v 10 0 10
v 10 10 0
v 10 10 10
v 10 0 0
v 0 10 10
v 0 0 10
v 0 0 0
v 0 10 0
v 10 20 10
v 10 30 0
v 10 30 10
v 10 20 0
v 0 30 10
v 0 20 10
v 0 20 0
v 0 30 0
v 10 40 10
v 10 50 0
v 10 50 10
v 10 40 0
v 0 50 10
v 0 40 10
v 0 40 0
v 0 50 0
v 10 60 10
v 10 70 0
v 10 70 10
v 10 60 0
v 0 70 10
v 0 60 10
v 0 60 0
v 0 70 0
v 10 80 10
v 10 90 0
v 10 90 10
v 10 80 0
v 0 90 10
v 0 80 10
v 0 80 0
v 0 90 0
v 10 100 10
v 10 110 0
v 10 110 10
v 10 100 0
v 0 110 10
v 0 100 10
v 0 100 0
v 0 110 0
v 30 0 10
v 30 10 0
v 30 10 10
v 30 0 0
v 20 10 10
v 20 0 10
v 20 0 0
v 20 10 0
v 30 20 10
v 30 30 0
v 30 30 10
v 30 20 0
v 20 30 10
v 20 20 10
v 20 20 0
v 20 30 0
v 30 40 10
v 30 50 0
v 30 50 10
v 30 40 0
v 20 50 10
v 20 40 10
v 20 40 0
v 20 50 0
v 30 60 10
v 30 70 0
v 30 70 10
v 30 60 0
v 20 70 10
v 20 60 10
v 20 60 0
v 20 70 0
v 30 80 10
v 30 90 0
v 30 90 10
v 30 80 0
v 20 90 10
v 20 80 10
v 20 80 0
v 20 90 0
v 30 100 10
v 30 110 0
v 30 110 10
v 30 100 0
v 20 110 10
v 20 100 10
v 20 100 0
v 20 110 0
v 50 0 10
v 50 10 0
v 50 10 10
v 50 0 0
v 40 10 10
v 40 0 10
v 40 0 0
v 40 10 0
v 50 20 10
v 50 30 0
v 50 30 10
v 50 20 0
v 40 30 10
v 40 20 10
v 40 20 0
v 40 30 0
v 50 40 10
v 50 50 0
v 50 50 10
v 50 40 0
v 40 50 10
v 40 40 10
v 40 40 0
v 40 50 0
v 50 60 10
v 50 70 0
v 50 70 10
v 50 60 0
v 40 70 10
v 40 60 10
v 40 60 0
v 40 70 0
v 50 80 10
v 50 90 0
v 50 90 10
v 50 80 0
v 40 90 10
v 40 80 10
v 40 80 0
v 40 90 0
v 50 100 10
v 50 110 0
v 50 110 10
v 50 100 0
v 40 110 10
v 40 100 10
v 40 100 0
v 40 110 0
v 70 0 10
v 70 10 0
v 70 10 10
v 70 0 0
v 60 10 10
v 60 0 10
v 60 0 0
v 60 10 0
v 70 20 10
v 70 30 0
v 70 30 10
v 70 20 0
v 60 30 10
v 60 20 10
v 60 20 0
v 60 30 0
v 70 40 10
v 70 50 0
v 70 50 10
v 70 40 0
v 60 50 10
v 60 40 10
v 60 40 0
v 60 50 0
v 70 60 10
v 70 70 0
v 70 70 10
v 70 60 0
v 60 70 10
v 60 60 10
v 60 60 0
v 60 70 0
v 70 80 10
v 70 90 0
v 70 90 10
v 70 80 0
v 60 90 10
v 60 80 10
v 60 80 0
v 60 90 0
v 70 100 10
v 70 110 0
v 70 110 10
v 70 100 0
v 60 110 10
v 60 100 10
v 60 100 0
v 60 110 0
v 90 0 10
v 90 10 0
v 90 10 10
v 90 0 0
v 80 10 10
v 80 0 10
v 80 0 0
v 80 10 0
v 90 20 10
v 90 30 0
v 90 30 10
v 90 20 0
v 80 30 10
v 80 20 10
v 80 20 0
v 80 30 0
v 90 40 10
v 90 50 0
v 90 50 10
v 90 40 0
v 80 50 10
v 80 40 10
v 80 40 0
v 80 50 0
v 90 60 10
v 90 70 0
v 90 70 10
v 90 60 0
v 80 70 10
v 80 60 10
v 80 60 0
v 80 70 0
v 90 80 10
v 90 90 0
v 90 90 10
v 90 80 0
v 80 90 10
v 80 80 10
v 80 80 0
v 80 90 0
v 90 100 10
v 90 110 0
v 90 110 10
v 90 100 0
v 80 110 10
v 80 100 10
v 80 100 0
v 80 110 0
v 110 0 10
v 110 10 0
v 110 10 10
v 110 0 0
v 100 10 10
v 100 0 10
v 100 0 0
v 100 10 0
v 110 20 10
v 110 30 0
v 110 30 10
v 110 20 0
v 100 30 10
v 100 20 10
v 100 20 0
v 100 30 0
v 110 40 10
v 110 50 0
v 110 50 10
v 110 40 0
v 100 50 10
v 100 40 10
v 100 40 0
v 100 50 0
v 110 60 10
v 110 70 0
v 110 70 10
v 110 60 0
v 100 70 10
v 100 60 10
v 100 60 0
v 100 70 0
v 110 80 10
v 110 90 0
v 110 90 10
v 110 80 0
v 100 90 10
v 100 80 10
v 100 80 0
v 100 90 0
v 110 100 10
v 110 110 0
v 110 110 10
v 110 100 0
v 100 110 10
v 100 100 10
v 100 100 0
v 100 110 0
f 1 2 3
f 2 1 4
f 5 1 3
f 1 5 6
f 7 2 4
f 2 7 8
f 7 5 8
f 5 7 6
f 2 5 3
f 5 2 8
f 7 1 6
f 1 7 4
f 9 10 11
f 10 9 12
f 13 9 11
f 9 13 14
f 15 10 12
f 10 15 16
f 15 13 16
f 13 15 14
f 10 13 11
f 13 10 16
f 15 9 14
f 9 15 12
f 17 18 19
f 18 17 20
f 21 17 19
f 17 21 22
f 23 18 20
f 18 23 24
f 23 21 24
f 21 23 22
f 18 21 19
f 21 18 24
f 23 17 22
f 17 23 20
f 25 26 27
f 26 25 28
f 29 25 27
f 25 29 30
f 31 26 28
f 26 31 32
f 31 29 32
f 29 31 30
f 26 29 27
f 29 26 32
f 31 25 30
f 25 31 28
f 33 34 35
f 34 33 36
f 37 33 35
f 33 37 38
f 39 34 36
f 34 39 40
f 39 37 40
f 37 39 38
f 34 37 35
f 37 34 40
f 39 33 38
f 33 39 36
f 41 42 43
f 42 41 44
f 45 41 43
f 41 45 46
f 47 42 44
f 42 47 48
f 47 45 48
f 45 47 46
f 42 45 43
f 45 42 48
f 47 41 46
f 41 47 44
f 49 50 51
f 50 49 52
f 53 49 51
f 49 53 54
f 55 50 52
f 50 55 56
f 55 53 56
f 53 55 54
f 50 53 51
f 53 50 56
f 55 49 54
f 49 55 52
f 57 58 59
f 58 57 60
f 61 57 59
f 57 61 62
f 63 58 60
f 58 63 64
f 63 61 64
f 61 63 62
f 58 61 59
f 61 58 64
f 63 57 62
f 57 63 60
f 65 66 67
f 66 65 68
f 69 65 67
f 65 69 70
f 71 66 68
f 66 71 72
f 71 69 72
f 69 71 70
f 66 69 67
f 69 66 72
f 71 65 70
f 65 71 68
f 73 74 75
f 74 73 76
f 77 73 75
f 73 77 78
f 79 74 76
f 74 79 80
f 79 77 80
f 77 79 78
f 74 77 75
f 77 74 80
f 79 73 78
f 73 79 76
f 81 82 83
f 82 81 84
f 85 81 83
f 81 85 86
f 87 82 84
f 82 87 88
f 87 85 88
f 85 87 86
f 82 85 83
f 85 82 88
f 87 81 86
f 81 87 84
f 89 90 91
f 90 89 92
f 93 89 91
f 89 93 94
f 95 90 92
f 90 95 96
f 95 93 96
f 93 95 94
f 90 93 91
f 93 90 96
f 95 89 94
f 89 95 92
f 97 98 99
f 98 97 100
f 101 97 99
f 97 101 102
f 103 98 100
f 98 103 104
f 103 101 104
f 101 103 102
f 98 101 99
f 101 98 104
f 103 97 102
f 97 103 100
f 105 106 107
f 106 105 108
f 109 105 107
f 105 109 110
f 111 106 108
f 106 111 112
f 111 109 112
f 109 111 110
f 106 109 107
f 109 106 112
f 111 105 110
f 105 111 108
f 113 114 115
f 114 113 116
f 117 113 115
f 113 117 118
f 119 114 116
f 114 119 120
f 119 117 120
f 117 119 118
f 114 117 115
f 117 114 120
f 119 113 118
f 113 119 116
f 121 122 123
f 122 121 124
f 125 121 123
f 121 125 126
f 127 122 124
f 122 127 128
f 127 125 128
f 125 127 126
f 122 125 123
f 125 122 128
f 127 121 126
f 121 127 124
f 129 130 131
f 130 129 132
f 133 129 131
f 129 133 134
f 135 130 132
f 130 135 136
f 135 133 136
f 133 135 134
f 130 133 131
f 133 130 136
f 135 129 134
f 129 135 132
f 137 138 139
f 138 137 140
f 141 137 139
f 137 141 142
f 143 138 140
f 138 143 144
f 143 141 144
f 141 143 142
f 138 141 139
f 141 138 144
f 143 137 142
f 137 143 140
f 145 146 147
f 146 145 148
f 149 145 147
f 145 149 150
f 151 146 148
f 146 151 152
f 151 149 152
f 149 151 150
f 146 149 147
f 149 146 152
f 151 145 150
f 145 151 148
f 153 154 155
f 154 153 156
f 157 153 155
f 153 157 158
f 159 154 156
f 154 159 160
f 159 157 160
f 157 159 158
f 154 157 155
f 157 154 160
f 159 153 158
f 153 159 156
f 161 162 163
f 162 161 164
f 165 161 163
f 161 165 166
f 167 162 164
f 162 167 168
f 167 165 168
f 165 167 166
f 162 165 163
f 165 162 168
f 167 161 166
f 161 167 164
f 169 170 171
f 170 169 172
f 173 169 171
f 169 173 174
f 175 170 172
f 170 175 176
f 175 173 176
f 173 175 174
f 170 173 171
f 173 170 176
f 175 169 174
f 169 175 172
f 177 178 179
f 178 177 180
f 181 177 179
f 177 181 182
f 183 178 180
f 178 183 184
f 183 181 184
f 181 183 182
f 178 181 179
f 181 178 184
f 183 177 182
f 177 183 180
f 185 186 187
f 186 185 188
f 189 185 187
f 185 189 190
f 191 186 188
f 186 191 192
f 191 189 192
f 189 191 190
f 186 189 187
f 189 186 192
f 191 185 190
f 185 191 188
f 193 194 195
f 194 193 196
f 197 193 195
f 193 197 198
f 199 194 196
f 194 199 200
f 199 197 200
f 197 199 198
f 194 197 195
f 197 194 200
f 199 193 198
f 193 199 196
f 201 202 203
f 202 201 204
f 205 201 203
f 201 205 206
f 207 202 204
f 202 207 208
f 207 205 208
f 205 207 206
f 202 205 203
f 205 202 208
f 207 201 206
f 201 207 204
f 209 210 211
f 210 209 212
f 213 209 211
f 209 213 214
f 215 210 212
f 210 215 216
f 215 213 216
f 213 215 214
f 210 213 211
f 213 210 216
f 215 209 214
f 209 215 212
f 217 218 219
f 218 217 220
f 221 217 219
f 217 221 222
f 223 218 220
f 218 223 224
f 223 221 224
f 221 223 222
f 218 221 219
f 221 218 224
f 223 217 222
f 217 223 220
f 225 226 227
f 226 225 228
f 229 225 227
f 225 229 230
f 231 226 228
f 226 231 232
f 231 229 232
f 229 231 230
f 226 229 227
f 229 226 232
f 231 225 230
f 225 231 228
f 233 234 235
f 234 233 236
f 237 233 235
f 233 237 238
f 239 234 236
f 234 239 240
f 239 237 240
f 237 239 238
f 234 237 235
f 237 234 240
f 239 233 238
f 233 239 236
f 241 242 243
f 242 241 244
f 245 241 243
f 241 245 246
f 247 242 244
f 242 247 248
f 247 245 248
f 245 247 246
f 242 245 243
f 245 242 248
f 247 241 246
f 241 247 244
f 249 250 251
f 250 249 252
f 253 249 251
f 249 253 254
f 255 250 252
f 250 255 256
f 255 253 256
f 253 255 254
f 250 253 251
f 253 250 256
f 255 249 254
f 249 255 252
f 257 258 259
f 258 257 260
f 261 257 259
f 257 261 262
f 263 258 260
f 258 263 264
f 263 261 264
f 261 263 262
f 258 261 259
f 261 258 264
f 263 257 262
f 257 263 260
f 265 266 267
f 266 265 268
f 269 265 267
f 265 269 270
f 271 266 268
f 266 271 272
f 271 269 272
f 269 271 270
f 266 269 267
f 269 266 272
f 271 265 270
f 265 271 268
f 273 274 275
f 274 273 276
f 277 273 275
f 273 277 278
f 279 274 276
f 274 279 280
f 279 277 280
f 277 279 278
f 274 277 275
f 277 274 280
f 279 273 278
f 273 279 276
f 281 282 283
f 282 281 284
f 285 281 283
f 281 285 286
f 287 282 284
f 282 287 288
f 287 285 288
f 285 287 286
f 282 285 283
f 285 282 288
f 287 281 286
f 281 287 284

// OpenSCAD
module cube_array(size, density = 1) {
  for (i = [0:density:size]) {
    for (j = [0:density:size]) {
      translate([i * size, j * size, 0]) {
        cube([size, size, size]);
      }
    }
  }
}

cube_array(10, 2);
